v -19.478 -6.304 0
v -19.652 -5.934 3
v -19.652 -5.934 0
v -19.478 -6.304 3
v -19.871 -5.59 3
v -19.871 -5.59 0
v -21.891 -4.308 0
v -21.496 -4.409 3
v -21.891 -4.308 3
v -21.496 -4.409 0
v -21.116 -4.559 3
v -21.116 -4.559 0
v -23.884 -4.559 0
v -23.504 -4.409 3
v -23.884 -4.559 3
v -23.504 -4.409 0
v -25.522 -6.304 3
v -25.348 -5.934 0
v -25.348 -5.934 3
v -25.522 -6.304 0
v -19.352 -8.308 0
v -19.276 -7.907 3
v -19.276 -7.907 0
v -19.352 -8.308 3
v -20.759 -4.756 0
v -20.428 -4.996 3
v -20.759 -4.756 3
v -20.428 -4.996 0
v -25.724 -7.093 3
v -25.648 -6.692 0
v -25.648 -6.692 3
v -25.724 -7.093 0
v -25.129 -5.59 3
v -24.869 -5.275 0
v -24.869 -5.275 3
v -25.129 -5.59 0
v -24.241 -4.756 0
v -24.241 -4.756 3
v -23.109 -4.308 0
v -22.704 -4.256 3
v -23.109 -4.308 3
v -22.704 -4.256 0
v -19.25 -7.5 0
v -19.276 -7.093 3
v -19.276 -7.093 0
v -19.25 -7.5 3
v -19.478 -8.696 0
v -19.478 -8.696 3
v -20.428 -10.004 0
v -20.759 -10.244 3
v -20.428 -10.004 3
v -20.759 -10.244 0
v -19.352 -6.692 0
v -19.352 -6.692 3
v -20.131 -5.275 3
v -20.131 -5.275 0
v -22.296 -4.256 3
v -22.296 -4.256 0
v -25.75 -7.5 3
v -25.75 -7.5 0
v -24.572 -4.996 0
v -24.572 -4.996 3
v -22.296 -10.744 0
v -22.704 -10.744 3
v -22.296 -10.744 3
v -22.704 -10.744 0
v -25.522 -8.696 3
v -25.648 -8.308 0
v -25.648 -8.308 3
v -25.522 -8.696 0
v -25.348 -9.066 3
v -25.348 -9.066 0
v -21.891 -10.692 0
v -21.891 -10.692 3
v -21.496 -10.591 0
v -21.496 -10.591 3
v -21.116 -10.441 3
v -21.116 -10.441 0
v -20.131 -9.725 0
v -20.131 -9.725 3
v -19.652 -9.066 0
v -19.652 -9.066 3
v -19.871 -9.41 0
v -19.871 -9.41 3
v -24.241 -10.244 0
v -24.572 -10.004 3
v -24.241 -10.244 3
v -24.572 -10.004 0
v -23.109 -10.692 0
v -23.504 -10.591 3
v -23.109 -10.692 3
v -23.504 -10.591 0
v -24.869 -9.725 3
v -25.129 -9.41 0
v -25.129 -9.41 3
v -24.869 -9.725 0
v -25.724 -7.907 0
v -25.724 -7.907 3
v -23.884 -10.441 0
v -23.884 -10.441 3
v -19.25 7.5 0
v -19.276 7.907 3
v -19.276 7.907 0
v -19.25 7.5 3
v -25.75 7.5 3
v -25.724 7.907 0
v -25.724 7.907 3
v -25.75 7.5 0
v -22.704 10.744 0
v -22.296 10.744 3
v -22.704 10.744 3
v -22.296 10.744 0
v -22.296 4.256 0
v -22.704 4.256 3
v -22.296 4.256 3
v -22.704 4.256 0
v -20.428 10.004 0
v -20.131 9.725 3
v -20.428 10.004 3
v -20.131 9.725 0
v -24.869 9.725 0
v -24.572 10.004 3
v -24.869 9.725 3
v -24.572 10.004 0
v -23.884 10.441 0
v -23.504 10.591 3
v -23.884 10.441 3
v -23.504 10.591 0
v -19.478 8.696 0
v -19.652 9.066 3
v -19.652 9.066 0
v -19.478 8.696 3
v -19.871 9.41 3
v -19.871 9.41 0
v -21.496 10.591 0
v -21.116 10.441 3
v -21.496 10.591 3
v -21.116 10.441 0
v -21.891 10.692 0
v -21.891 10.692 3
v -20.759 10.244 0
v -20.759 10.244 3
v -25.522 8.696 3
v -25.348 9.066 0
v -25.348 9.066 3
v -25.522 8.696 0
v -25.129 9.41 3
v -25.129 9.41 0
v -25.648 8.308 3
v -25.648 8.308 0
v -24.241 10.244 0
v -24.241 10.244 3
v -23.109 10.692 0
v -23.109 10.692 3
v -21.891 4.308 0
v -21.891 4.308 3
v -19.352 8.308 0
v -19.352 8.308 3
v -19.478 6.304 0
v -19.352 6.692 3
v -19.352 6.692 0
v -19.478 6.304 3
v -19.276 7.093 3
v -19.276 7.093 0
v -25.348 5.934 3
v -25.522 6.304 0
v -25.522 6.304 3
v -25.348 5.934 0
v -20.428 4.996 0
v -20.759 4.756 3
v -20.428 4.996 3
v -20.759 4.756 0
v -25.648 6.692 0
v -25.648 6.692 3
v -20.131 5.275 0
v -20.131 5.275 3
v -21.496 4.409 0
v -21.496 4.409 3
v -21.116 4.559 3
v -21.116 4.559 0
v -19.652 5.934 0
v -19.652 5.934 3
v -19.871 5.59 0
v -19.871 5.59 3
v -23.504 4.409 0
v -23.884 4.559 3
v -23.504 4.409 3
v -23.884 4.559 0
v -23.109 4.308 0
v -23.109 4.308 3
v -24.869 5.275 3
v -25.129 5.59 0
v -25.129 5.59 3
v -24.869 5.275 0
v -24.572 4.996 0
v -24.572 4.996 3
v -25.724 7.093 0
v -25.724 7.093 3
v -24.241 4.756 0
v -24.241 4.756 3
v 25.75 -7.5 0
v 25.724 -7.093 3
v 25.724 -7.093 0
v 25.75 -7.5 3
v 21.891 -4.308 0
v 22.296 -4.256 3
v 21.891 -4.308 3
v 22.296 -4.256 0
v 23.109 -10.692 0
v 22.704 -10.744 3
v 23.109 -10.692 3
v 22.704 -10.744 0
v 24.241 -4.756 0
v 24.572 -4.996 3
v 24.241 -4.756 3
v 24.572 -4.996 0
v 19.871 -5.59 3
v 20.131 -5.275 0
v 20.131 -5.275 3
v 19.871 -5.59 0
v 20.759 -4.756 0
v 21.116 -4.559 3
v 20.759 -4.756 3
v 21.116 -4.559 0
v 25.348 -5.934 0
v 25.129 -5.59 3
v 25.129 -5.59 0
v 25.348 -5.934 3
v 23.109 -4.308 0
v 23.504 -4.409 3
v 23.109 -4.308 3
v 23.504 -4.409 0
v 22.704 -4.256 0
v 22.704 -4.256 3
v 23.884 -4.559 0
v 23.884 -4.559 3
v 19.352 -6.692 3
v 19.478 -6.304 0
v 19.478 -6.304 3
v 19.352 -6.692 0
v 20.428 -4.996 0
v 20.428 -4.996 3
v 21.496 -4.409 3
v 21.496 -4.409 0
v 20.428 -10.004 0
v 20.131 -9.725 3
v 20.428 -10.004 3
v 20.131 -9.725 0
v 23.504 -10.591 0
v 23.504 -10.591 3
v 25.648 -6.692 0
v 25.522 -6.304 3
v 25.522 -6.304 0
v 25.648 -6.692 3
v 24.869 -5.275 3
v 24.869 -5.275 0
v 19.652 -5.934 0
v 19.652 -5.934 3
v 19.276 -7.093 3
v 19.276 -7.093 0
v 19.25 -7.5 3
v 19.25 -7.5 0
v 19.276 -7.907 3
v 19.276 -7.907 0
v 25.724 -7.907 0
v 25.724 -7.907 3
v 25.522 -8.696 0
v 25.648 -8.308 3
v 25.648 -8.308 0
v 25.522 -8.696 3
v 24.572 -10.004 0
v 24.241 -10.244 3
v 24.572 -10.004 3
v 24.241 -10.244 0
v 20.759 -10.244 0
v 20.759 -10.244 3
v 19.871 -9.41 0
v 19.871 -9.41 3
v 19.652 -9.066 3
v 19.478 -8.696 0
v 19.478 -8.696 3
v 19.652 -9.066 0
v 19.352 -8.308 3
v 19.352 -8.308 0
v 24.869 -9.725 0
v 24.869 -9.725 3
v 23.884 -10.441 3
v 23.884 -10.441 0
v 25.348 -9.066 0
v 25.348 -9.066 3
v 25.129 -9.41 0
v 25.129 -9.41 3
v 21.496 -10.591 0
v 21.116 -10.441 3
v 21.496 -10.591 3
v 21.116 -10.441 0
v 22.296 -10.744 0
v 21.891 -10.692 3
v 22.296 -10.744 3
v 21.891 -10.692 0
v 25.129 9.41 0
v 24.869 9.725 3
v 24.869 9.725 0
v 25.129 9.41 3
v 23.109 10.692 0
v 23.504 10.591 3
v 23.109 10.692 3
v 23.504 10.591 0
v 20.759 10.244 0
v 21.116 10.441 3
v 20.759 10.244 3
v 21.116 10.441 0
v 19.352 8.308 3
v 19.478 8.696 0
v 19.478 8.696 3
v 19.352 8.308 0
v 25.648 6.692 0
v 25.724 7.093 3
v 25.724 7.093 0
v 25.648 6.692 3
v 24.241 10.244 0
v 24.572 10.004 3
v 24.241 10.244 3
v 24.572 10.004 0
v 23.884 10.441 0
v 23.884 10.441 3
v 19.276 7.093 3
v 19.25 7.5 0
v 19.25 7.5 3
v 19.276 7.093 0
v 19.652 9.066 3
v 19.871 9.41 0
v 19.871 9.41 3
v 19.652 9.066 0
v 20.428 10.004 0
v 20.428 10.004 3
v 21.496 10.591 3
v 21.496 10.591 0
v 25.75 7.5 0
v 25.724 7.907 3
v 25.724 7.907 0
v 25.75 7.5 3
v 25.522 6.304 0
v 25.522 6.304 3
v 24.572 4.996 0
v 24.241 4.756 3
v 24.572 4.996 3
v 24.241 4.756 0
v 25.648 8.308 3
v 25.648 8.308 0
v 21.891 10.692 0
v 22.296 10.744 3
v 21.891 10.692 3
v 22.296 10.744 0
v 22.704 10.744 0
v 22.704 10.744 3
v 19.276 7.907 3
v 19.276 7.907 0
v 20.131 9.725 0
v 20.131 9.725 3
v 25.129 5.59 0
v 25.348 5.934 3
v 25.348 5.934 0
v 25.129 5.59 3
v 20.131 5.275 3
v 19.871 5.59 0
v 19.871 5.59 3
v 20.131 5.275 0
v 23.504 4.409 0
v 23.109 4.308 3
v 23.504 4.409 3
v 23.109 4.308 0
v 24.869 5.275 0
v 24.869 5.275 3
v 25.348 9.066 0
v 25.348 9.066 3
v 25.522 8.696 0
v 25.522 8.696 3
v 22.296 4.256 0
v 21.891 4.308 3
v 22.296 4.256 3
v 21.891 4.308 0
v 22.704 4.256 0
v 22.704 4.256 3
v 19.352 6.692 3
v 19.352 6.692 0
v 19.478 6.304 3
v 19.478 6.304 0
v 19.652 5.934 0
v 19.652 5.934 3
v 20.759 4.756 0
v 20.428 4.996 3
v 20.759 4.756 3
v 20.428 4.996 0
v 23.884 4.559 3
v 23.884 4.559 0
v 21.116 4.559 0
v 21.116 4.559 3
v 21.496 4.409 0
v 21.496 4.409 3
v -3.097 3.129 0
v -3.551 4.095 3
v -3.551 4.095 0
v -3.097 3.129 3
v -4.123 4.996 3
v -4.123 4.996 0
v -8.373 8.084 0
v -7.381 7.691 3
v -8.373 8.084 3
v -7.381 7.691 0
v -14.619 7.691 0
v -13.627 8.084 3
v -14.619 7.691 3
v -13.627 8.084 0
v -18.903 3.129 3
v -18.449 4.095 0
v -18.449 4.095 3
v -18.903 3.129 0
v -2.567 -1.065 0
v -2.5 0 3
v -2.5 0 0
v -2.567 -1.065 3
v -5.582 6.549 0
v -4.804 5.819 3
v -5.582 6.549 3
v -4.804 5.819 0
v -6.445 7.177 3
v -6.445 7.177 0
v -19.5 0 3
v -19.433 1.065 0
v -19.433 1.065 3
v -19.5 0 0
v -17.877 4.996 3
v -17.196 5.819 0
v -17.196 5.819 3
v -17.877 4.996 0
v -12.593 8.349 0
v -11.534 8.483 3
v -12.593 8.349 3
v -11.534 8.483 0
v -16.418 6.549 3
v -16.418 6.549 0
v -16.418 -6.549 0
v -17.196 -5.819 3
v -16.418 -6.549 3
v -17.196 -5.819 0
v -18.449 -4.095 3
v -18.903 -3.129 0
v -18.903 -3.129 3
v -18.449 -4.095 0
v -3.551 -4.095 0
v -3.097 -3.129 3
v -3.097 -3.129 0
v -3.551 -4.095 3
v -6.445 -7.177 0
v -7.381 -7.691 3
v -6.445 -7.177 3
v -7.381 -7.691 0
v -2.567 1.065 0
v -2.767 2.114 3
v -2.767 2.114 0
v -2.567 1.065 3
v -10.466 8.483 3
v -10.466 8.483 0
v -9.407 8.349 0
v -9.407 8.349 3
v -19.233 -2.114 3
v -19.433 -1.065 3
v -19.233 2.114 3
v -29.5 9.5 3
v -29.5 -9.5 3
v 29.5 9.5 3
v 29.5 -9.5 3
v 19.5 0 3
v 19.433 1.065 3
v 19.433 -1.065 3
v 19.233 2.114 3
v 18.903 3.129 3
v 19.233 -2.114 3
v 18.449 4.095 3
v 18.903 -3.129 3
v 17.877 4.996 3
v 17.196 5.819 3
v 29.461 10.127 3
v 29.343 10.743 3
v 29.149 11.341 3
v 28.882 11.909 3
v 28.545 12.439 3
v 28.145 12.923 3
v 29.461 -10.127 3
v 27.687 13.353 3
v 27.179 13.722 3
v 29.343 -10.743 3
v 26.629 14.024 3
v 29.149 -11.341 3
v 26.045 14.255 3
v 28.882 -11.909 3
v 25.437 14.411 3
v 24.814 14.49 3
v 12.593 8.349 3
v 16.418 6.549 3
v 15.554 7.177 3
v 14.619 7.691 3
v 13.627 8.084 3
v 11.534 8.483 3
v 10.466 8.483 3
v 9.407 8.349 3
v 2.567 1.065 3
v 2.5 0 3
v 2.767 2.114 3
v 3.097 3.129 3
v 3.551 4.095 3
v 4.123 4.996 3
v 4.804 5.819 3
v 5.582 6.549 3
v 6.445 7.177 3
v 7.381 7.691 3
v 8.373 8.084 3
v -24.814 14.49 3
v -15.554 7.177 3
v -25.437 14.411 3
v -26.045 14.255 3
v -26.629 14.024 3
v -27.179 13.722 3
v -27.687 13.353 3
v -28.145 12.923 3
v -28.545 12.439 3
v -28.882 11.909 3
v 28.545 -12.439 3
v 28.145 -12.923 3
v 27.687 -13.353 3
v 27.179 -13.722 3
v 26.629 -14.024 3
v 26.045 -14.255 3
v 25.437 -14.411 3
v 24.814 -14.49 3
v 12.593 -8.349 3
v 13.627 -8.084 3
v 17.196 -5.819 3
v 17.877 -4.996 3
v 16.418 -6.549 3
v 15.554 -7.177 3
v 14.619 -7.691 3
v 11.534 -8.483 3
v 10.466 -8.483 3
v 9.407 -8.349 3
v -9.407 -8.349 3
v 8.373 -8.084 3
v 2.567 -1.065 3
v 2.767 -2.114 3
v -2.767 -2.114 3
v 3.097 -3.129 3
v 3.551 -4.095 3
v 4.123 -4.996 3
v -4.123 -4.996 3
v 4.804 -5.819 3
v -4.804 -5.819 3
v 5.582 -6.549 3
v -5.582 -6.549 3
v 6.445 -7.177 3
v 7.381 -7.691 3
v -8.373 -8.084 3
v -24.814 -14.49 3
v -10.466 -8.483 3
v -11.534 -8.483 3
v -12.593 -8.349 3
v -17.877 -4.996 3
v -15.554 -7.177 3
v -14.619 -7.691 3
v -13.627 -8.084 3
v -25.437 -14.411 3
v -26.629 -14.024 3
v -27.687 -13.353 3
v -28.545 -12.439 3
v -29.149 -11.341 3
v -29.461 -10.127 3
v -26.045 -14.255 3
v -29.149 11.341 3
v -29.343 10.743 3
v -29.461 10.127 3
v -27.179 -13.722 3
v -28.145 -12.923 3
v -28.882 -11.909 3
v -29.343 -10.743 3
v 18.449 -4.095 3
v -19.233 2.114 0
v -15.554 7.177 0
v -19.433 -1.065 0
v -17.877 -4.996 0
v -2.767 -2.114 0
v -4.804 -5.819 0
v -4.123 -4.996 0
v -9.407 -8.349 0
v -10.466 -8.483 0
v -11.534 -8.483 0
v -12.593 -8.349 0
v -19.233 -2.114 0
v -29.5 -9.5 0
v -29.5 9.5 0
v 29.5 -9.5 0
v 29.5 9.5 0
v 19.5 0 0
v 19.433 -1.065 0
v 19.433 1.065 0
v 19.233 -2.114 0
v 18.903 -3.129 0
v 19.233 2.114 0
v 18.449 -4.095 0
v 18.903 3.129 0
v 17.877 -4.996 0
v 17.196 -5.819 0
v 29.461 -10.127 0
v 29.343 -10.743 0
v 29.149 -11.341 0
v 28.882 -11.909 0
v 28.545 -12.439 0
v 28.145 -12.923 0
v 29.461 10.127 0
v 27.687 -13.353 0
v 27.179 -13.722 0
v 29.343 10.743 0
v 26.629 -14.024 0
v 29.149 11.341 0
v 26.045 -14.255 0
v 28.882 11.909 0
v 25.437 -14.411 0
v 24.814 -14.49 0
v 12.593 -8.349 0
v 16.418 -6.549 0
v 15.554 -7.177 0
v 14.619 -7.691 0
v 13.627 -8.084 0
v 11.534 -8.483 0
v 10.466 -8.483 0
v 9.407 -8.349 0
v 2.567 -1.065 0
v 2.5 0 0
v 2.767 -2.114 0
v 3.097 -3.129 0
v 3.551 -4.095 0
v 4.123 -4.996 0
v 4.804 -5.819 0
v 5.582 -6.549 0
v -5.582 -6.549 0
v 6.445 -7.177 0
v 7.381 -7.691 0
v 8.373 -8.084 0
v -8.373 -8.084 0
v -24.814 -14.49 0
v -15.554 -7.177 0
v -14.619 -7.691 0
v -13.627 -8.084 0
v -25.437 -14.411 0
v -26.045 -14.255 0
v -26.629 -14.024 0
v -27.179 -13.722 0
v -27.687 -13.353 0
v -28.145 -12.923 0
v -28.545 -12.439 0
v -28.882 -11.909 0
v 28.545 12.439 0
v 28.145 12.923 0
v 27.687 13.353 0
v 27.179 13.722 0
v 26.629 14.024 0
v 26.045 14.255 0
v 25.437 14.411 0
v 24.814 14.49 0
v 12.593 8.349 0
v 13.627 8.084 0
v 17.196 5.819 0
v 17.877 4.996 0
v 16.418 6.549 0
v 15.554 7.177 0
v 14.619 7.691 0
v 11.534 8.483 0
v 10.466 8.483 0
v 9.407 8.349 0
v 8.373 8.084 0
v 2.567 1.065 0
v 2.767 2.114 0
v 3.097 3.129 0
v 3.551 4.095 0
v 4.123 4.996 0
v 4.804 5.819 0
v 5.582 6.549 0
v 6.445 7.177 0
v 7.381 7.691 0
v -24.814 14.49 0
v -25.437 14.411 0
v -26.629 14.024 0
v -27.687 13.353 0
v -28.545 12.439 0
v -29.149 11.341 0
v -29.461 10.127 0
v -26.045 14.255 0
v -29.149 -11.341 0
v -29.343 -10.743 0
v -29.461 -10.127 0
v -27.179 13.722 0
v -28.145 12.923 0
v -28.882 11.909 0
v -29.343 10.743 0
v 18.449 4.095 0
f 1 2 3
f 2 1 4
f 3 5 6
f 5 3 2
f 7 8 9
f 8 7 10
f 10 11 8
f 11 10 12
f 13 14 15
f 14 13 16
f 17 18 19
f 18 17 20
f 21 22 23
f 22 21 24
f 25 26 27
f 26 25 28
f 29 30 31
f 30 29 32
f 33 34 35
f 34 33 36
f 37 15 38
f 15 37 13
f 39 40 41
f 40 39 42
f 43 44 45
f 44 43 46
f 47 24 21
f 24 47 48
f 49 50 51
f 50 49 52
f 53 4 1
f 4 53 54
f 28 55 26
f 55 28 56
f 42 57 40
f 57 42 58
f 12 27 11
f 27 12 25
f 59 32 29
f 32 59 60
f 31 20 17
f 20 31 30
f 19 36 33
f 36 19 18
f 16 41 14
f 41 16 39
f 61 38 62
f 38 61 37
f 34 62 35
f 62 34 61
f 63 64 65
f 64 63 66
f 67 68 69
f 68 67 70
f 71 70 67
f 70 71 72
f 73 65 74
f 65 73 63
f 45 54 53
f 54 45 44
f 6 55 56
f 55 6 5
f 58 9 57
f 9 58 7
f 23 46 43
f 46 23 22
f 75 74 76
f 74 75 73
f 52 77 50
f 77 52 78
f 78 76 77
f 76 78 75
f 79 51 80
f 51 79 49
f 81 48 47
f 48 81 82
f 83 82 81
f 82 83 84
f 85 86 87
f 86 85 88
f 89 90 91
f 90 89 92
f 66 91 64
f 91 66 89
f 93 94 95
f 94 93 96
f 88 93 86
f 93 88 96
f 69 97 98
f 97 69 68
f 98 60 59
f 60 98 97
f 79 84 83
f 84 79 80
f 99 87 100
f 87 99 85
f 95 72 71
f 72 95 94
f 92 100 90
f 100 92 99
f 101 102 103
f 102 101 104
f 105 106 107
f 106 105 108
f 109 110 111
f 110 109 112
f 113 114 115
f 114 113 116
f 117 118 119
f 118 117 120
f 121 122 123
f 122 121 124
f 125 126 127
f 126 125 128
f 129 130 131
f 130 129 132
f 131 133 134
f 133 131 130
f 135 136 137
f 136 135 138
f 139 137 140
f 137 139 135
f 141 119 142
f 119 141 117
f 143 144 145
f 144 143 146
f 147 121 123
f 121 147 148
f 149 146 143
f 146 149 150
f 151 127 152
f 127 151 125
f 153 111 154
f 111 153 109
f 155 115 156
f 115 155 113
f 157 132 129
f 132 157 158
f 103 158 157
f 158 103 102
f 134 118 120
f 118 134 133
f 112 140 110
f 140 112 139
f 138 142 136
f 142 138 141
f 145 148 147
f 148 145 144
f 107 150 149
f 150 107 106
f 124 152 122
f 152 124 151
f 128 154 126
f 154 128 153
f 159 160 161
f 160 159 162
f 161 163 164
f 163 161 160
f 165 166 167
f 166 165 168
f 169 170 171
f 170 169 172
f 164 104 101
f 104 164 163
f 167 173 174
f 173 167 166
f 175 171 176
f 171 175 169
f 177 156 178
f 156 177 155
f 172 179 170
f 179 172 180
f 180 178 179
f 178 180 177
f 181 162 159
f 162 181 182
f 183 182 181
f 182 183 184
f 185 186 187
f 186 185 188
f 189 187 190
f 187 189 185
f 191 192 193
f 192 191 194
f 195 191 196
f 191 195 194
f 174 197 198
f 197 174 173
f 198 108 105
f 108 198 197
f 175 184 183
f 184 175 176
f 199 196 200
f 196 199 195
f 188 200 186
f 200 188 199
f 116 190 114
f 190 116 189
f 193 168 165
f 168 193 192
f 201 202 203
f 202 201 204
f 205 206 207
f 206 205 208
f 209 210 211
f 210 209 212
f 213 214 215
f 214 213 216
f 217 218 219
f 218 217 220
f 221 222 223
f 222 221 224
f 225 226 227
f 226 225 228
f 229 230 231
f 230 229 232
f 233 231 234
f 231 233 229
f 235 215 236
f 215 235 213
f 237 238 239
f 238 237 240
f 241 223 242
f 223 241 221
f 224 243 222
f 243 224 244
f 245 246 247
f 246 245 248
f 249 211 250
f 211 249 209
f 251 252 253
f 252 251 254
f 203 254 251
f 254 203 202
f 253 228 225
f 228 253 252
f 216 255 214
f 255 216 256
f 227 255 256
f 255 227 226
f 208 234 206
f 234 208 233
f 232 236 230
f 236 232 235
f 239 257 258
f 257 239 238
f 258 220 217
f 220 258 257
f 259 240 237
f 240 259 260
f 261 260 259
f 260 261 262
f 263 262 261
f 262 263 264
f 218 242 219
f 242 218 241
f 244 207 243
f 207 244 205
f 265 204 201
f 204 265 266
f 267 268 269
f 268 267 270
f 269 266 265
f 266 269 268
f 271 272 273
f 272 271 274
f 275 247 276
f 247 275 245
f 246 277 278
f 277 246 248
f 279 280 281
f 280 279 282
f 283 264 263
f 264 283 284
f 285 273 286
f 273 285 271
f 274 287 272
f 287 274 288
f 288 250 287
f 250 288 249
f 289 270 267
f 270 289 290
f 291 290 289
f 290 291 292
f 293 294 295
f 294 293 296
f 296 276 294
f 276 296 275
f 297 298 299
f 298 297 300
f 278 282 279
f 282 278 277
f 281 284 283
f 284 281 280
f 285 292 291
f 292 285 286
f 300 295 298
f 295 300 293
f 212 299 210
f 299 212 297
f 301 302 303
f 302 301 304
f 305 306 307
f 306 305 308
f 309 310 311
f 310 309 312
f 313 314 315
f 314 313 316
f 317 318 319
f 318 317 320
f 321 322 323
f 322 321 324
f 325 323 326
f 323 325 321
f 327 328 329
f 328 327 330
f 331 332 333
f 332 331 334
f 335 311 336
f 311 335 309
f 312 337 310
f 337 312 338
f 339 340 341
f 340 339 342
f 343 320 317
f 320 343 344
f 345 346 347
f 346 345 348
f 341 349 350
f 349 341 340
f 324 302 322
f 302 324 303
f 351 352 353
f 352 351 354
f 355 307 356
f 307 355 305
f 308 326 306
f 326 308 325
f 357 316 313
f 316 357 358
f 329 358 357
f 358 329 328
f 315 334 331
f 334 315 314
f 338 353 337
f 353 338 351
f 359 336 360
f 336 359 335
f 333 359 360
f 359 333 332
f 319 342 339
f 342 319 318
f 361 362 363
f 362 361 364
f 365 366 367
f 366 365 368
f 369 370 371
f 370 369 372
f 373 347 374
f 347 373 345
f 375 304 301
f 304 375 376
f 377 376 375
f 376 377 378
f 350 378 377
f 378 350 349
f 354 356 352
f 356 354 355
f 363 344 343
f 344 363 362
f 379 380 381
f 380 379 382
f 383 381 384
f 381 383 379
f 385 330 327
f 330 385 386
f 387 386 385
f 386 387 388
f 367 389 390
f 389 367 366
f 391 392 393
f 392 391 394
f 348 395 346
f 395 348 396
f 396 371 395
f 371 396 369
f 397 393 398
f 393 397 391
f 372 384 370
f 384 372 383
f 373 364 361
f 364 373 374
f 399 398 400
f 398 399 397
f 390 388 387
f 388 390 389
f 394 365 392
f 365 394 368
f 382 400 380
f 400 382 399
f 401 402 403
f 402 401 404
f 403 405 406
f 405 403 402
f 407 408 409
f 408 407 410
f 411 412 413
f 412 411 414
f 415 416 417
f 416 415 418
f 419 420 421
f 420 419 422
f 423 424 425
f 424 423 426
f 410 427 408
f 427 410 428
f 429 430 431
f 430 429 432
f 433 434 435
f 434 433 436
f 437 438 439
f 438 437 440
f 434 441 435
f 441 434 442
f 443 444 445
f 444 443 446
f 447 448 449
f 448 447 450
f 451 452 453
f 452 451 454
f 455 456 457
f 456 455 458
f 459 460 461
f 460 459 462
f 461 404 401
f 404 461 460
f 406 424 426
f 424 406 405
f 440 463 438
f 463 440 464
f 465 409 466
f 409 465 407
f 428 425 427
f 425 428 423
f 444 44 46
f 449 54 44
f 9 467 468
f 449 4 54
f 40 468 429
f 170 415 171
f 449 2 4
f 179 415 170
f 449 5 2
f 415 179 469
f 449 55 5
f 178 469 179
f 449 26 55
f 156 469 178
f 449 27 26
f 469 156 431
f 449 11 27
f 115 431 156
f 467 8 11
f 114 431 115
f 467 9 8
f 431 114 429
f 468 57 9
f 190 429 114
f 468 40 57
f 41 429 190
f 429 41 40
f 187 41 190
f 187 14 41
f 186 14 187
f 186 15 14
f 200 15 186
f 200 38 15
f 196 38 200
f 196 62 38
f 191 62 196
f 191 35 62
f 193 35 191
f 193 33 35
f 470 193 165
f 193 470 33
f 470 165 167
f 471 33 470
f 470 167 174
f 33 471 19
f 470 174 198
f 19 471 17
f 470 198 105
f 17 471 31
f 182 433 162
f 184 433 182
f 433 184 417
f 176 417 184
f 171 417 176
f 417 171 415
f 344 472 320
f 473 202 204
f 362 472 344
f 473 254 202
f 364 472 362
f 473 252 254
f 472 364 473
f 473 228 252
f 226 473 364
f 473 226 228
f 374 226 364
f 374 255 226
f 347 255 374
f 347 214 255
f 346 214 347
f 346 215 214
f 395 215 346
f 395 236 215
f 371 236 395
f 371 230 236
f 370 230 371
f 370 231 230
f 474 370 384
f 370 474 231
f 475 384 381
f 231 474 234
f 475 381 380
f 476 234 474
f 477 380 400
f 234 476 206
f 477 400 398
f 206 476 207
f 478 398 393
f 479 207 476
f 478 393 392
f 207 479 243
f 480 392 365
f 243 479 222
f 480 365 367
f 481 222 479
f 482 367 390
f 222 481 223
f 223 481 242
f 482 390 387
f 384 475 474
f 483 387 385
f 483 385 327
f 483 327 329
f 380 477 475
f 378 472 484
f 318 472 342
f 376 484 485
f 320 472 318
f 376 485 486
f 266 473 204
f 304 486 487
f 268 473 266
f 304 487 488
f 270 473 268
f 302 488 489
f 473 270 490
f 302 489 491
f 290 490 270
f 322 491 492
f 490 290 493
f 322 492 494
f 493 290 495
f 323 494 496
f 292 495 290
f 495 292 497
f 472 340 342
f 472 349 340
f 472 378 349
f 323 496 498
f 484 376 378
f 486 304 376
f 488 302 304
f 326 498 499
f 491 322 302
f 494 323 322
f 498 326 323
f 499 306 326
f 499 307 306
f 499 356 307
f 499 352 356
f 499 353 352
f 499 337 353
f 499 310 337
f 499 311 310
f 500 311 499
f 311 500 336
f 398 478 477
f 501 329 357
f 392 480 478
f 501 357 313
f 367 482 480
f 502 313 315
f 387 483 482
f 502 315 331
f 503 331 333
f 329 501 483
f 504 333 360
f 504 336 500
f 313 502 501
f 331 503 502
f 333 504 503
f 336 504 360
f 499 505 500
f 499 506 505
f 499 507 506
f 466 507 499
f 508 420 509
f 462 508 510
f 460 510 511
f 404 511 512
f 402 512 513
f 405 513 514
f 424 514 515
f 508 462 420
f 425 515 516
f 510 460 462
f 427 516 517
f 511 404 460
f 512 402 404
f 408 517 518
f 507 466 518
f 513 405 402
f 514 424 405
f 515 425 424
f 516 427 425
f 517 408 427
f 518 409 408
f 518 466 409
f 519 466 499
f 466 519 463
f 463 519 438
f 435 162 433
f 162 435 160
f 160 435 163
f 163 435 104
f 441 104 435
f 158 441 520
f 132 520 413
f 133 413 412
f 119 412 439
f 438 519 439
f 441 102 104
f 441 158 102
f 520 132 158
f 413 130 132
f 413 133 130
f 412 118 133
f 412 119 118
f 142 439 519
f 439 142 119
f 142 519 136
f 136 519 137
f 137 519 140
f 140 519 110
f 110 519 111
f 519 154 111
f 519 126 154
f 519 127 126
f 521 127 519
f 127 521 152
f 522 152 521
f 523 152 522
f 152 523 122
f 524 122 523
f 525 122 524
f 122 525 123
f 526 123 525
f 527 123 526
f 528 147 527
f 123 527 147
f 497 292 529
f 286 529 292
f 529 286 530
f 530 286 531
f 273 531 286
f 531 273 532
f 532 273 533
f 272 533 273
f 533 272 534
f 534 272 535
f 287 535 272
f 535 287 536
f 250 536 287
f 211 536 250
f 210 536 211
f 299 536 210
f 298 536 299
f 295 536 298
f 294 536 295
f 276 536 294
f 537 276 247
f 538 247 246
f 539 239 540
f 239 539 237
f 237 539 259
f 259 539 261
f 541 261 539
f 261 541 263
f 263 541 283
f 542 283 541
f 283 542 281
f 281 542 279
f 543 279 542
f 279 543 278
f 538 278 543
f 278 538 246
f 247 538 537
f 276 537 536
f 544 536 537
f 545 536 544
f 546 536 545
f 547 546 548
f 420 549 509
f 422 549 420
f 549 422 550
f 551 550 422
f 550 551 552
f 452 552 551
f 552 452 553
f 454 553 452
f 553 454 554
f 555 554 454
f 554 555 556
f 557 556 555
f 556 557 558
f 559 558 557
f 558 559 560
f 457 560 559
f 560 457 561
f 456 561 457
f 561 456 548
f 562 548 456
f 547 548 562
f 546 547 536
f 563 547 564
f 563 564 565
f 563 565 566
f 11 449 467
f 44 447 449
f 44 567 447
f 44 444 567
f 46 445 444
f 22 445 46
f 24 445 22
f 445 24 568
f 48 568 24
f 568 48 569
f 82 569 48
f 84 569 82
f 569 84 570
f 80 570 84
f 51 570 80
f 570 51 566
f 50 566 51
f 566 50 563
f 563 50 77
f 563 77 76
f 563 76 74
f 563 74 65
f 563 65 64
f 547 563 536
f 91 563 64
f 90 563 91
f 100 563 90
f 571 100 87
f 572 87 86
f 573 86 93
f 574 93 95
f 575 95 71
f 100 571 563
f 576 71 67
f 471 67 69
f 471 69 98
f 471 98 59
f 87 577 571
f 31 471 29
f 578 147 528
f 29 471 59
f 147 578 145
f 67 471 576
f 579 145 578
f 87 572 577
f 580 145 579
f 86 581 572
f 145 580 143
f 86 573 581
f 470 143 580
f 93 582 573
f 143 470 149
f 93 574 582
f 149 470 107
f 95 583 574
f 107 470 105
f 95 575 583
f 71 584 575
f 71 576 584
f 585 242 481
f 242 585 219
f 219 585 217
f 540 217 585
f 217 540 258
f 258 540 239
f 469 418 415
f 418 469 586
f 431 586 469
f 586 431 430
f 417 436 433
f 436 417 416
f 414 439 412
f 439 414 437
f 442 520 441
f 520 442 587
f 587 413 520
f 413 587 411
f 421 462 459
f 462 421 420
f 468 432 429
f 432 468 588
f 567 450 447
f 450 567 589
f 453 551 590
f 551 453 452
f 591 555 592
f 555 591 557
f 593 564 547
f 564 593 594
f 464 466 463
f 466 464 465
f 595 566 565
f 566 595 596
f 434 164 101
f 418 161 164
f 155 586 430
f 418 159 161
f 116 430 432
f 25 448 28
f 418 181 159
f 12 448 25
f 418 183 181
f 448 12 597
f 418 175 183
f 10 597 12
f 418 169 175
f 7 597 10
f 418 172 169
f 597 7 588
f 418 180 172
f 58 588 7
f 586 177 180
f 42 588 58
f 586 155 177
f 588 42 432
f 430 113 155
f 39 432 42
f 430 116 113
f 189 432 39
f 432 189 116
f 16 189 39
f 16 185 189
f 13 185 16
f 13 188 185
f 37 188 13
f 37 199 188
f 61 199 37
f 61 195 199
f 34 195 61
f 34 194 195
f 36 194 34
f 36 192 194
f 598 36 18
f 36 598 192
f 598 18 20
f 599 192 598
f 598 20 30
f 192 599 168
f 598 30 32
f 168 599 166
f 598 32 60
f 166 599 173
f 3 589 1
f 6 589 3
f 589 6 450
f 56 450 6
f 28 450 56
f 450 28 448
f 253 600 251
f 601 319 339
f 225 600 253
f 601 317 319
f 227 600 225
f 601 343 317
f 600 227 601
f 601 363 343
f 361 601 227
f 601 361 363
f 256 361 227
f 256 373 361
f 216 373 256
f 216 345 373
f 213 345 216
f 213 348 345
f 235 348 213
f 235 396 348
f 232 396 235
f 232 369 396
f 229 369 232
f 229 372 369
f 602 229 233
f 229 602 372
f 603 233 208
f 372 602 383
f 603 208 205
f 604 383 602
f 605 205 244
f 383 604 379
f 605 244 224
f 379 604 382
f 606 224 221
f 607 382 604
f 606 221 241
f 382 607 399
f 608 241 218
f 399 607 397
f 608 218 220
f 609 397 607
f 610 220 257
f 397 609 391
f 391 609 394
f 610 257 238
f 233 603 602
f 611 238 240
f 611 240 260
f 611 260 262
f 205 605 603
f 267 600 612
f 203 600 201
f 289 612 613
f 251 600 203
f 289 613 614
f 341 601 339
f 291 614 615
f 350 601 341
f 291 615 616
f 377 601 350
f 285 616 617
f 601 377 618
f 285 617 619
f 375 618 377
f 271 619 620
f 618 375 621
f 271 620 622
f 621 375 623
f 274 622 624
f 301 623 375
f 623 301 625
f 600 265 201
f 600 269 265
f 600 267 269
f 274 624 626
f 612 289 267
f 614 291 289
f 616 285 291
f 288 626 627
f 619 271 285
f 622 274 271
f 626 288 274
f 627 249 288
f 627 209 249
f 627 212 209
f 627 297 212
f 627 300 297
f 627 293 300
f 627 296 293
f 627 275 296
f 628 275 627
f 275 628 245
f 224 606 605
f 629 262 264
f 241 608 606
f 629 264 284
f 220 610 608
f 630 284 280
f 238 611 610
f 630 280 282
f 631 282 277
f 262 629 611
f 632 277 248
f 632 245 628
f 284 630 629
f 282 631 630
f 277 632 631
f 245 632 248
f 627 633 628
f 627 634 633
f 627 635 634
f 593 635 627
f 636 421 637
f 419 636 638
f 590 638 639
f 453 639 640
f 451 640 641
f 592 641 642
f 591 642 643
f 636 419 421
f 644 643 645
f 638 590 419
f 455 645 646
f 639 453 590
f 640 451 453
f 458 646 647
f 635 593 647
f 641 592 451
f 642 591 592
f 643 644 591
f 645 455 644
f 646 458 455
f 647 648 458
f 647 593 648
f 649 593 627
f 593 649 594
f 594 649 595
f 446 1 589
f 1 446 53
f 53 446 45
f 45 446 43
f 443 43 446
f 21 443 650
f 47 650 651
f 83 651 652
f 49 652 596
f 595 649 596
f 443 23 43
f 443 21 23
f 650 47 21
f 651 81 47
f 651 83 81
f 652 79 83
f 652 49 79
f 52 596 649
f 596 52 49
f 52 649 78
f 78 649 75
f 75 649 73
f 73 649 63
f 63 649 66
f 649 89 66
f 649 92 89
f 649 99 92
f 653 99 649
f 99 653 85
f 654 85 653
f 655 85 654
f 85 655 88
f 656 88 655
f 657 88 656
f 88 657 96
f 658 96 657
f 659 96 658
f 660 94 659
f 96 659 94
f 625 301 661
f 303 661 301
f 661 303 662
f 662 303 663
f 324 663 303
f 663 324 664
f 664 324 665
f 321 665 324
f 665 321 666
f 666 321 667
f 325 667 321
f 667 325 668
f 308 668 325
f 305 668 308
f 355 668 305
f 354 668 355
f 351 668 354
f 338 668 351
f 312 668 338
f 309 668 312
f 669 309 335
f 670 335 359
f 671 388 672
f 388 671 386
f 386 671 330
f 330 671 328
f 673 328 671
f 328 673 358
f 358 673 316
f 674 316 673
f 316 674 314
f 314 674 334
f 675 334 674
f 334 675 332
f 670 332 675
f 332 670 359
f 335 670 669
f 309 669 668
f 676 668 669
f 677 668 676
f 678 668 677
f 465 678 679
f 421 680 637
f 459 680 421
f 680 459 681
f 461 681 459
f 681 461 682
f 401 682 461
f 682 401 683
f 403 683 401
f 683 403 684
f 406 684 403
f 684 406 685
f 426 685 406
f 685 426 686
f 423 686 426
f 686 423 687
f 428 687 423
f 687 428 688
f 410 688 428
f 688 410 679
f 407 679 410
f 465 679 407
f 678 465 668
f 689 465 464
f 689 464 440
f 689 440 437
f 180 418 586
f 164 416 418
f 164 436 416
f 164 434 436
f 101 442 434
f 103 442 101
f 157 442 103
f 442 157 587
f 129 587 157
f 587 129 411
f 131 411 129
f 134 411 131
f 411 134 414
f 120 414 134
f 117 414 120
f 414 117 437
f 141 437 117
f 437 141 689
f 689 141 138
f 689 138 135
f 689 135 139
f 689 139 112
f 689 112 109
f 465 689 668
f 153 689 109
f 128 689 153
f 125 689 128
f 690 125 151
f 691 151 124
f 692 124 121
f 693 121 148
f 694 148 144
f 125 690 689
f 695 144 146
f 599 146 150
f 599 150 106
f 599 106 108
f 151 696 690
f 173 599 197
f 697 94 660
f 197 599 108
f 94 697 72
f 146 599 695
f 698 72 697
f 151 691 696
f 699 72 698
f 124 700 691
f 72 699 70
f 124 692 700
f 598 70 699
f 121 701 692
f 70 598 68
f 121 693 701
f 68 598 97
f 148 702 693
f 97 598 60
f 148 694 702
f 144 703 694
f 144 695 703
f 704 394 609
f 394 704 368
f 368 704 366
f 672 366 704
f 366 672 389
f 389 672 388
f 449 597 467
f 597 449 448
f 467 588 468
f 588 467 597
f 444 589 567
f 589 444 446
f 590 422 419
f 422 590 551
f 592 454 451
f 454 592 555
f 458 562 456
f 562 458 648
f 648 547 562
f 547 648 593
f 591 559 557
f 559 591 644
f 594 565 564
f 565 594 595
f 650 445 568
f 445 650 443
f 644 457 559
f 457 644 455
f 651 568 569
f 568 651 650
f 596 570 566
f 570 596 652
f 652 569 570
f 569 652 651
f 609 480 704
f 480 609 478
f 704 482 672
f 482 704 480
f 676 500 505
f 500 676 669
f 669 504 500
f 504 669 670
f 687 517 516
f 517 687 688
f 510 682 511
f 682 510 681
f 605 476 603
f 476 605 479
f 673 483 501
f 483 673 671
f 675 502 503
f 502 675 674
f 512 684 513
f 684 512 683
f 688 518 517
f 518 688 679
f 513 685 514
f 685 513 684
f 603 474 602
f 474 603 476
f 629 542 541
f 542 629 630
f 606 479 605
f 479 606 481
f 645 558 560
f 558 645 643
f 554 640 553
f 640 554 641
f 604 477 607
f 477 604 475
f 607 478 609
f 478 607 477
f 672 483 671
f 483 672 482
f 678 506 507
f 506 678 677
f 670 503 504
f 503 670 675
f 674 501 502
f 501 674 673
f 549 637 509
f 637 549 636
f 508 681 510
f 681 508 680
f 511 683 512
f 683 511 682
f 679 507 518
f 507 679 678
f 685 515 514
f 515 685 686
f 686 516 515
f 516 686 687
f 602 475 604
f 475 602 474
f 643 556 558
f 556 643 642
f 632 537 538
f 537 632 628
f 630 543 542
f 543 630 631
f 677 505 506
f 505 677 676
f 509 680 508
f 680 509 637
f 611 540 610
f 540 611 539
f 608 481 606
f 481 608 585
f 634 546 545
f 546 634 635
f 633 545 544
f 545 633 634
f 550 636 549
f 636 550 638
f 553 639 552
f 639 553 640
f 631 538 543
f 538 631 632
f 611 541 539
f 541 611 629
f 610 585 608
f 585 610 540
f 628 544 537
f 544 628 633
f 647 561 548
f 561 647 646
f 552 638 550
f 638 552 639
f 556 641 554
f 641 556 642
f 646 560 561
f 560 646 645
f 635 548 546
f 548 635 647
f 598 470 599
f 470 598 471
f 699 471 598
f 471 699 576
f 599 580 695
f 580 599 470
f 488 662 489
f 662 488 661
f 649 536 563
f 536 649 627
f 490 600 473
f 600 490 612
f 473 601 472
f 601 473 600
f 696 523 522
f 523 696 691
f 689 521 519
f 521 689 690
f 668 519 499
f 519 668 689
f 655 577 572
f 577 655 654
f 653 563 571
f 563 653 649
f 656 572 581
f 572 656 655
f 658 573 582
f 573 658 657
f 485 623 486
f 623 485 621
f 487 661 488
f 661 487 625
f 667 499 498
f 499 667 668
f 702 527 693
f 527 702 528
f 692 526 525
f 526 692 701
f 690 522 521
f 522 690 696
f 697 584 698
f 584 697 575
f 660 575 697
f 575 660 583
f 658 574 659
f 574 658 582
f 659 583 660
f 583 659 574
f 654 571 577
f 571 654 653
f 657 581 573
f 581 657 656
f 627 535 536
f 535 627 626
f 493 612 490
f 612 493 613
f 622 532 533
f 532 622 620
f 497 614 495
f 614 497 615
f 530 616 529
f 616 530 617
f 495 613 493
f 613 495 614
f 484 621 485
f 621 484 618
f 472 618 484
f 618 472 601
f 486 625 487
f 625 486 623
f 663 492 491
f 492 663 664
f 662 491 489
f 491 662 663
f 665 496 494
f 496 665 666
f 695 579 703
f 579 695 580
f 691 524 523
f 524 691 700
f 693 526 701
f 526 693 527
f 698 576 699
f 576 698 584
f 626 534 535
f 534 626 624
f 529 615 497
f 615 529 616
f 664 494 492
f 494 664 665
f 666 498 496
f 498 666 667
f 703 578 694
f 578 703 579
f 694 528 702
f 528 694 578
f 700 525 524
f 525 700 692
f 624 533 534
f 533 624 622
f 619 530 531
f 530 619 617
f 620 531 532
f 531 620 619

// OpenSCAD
$fn = 50;


difference() {
	union() {
		hull() {
			translate(v = [-24.5000000000, 9.5000000000, 0]) {
				cylinder(h = 3, r = 5);
			}
			translate(v = [24.5000000000, 9.5000000000, 0]) {
				cylinder(h = 3, r = 5);
			}
			translate(v = [-24.5000000000, -9.5000000000, 0]) {
				cylinder(h = 3, r = 5);
			}
			translate(v = [24.5000000000, -9.5000000000, 0]) {
				cylinder(h = 3, r = 5);
			}
		}
	}
	union() {
		#translate(v = [-22.5000000000, -7.5000000000, -100.0000000000]) {
			cylinder(h = 200, r = 3.2500000000);
		}
		#translate(v = [-22.5000000000, 7.5000000000, -100.0000000000]) {
			cylinder(h = 200, r = 3.2500000000);
		}
		#translate(v = [22.5000000000, -7.5000000000, -100.0000000000]) {
			cylinder(h = 200, r = 3.2500000000);
		}
		#translate(v = [22.5000000000, 7.5000000000, -100.0000000000]) {
			cylinder(h = 200, r = 3.2500000000);
		}
		#translate(v = [-11.0000000000, 0, 0]) {
			cylinder(h = 3, r = 8.5000000000);
		}
		#translate(v = [11.0000000000, 0, 0]) {
			cylinder(h = 3, r = 8.5000000000);
		}
	}
}
